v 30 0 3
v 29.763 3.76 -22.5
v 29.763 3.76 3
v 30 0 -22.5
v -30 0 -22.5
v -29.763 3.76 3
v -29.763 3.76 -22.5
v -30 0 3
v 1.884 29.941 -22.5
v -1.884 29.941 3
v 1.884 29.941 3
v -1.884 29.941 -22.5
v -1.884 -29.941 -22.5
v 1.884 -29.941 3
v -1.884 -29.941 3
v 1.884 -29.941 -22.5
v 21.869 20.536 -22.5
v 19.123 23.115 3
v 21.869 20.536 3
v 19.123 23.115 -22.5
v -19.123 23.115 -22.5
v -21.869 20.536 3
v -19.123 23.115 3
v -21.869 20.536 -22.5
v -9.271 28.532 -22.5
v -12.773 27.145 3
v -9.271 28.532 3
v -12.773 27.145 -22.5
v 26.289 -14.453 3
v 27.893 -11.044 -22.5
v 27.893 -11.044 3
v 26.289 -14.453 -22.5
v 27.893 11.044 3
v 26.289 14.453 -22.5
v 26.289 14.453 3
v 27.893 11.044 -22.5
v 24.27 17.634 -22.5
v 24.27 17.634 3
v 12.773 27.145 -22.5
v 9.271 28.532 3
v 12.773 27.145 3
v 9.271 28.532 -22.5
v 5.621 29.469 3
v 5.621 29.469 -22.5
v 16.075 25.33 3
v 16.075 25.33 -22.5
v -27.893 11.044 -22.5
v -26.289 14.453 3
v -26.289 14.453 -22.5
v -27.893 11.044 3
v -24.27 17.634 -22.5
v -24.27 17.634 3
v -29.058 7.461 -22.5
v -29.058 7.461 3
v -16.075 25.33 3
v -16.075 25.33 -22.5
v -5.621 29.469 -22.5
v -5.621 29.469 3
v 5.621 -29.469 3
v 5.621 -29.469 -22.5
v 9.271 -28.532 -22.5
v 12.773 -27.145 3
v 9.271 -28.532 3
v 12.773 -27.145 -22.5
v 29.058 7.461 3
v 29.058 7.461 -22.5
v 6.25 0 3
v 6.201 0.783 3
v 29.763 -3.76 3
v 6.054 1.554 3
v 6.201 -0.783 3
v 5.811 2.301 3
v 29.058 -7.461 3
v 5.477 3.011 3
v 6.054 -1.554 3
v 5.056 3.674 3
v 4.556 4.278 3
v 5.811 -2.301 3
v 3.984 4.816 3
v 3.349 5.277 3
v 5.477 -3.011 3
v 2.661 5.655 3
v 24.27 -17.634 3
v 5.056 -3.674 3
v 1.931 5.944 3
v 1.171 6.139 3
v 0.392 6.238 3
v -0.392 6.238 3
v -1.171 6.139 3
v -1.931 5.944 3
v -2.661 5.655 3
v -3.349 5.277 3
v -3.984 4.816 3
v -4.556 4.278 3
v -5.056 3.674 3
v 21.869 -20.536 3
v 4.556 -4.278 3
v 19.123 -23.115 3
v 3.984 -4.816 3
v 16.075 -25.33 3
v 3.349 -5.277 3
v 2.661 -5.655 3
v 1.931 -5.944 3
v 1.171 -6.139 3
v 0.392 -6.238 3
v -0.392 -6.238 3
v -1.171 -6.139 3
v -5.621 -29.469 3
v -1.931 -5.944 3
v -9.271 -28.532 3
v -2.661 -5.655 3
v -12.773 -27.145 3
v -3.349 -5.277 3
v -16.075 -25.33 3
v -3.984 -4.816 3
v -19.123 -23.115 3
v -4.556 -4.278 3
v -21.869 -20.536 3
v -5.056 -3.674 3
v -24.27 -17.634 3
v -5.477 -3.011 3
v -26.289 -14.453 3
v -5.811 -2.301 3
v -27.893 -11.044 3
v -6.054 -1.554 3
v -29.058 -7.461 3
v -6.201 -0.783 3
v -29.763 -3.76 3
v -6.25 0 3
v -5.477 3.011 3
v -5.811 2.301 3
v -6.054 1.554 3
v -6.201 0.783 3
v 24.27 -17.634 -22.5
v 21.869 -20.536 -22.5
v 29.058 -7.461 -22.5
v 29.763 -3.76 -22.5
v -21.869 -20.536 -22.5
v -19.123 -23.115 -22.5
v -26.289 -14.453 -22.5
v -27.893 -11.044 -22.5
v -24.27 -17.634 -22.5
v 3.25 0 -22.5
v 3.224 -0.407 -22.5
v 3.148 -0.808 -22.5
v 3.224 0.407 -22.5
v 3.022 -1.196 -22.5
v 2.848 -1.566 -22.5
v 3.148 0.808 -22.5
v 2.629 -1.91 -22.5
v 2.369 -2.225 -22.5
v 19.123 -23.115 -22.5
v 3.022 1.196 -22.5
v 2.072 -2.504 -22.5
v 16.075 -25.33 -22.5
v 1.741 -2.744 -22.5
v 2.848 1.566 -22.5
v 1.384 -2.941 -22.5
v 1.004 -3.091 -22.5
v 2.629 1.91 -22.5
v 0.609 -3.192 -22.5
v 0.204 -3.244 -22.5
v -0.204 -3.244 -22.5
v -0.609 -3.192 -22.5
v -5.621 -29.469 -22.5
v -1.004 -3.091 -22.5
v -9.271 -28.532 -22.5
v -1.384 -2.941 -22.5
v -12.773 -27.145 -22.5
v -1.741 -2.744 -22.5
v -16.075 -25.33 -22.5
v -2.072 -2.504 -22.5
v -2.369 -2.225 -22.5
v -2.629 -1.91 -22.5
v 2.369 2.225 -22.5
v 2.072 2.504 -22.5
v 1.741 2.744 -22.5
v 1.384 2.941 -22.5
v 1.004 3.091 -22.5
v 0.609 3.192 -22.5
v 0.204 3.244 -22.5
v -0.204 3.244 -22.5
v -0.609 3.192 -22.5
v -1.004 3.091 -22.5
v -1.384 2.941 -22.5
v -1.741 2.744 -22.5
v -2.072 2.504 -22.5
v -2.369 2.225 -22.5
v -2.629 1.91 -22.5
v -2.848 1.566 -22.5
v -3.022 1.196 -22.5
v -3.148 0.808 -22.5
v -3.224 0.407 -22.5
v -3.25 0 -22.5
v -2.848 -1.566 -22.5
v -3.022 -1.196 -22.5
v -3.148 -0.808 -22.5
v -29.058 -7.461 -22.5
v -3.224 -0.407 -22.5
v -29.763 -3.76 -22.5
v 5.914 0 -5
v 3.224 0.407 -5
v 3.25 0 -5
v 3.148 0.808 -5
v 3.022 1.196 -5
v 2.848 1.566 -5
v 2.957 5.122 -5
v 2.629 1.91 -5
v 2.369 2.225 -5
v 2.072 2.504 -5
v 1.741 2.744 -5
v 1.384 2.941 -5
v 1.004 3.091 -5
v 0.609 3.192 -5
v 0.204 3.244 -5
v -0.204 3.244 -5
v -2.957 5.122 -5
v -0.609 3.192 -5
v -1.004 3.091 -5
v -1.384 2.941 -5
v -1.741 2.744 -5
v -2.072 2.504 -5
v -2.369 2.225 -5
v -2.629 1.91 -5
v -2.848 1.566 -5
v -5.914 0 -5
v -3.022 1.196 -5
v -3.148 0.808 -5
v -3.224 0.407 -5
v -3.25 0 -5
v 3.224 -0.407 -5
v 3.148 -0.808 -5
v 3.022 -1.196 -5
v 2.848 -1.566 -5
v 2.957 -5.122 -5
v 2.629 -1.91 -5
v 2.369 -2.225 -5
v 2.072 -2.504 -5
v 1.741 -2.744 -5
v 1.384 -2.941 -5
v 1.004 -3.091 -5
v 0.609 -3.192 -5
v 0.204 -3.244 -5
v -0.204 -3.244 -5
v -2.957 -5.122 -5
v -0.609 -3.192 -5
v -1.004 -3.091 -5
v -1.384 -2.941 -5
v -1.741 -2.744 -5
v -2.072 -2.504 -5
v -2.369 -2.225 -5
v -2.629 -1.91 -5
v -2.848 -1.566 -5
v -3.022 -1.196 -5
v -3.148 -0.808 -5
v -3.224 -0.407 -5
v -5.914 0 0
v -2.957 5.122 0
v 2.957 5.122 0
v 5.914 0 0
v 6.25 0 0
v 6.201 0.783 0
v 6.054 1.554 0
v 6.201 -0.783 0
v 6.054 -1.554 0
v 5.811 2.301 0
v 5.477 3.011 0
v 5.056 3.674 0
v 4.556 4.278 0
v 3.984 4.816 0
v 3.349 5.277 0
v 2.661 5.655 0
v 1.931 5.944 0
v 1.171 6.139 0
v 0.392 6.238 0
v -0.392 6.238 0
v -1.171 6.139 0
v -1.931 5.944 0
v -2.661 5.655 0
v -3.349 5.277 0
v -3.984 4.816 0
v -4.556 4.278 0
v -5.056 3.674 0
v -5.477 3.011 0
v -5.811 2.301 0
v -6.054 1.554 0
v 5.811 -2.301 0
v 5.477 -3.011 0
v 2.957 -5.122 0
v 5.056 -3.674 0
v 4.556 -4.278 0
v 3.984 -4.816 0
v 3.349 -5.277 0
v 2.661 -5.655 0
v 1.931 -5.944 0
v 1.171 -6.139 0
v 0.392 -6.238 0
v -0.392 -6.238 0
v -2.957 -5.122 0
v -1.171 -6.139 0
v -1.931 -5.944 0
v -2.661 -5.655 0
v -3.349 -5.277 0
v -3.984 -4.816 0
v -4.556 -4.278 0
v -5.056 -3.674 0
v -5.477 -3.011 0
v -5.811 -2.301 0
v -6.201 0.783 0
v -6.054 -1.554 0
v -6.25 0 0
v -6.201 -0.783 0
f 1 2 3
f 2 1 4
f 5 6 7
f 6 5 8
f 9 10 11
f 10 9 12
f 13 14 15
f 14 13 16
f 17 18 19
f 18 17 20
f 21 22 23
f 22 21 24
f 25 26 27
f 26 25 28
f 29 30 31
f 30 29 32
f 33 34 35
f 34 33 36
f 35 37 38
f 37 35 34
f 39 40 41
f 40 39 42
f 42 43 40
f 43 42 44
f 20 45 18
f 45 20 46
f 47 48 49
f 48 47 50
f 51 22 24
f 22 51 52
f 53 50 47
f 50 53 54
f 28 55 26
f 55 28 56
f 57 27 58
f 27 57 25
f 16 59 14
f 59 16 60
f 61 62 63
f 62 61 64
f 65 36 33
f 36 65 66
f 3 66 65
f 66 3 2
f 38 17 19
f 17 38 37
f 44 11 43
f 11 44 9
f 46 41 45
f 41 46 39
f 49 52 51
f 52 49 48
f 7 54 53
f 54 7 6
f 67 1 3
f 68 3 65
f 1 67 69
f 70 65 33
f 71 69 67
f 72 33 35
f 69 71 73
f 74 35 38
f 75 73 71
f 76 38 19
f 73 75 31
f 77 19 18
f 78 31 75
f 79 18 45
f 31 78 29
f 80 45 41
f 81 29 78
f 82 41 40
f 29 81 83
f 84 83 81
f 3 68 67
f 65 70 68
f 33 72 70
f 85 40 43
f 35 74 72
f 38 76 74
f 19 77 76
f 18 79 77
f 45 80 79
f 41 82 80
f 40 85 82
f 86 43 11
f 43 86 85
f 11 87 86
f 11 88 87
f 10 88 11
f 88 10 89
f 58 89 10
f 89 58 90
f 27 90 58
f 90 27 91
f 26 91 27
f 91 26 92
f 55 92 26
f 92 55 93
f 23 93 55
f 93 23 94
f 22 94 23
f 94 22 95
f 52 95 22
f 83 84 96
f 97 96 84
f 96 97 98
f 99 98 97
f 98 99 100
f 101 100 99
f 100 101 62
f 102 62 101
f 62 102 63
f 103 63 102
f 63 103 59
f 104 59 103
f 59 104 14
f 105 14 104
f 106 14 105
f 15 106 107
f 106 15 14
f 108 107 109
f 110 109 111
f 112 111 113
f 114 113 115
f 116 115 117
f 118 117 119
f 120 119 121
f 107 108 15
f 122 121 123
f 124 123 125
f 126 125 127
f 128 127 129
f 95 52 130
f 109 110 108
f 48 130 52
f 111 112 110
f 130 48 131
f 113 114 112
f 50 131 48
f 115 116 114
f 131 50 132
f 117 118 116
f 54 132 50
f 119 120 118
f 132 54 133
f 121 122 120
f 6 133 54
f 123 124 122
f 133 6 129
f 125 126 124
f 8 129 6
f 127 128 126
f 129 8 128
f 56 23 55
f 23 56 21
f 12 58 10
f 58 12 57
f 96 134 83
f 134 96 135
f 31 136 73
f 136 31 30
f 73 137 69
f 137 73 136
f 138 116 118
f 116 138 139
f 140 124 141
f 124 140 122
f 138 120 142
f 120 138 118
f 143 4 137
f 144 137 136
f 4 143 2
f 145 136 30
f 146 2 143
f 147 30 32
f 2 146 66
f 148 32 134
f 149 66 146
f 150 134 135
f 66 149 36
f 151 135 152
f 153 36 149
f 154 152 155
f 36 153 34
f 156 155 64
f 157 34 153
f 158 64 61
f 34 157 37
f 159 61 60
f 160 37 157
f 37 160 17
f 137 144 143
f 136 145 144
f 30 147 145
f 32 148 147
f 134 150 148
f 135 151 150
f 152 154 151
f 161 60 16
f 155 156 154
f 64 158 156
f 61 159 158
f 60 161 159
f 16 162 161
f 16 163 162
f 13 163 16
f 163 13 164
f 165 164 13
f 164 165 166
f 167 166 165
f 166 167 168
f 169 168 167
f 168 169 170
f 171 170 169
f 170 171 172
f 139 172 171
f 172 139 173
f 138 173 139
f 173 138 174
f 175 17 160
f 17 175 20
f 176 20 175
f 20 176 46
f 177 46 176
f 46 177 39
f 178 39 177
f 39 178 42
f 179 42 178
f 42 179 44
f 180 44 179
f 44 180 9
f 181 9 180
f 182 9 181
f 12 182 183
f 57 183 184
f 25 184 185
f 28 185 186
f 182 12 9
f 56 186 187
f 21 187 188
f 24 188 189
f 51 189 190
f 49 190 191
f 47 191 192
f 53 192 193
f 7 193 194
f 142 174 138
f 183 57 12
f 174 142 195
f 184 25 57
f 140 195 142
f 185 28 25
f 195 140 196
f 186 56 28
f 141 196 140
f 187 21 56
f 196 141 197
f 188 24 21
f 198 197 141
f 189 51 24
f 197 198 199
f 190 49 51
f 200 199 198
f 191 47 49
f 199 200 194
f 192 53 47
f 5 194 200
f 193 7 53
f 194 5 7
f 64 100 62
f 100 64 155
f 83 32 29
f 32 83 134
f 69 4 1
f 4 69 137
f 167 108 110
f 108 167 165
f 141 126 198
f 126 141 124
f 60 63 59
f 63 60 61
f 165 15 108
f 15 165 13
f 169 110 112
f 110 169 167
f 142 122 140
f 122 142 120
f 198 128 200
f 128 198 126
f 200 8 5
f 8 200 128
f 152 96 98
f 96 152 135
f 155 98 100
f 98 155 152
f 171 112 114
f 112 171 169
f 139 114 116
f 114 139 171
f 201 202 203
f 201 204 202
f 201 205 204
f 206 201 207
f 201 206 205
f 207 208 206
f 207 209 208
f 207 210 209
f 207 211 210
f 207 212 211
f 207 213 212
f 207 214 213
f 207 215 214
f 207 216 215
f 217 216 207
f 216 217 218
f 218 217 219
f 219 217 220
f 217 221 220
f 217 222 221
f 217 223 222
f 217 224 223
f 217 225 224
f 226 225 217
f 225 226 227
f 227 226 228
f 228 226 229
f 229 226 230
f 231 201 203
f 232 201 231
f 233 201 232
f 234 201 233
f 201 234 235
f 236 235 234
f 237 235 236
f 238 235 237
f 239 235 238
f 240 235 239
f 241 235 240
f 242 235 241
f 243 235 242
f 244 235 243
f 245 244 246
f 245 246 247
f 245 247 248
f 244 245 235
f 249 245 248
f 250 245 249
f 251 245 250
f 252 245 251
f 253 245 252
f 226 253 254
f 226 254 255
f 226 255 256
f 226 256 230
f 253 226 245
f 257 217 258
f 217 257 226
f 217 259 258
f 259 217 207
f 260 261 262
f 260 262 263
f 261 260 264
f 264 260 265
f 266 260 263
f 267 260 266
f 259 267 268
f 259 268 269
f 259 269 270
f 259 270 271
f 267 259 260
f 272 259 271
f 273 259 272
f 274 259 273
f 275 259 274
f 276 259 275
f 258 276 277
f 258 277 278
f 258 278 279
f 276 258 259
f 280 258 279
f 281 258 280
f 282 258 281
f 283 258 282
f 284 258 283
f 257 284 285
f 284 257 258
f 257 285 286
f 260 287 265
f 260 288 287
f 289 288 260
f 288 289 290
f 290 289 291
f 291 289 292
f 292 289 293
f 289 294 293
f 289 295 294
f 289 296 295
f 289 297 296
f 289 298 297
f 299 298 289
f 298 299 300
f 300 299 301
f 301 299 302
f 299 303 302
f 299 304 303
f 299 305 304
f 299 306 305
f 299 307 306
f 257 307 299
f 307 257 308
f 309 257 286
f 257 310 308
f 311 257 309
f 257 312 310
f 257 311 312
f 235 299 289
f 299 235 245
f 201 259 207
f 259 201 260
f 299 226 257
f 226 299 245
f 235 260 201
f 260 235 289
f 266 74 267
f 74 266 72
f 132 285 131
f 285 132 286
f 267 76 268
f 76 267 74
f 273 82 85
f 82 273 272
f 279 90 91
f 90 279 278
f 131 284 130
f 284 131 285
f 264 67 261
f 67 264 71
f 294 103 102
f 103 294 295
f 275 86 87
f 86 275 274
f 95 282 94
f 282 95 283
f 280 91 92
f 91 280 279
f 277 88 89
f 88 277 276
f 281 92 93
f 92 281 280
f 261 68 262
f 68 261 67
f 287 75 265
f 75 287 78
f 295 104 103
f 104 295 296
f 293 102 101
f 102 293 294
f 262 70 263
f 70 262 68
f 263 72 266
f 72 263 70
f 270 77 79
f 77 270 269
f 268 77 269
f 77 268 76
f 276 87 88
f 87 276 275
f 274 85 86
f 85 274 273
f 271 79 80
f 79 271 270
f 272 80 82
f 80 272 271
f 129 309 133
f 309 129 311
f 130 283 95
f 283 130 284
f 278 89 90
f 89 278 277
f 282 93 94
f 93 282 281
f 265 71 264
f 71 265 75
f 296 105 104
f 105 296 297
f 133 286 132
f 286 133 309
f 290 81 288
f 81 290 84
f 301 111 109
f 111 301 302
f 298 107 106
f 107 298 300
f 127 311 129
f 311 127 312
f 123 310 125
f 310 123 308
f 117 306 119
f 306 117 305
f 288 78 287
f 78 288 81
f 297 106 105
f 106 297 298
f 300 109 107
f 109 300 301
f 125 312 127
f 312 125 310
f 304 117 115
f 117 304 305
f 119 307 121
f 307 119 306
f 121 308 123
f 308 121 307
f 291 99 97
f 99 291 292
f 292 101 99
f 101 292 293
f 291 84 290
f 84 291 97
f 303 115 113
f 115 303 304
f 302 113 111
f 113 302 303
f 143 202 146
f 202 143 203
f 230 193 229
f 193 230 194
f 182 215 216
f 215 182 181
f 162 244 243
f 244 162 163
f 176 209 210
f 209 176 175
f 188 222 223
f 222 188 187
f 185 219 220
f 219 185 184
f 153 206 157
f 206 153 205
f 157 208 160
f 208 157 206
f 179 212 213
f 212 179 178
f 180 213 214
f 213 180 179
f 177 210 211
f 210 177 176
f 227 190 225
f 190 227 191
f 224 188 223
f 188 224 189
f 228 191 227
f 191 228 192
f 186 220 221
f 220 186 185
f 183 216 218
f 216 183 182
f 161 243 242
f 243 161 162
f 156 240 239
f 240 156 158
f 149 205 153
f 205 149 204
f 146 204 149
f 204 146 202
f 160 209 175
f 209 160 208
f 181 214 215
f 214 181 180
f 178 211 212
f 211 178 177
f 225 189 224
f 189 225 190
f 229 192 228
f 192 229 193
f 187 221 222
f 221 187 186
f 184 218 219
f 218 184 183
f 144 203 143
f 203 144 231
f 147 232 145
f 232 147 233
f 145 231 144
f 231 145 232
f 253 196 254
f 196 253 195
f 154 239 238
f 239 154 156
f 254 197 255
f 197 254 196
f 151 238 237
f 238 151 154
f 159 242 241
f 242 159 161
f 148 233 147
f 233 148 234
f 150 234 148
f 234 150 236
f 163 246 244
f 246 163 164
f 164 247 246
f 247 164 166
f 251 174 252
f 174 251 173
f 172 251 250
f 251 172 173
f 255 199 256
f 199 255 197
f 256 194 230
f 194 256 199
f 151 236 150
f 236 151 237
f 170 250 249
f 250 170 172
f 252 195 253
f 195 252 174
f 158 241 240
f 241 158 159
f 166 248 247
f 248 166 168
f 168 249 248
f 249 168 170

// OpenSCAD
$fn = 50;

difference() {
	union() {
		translate(v = [0, 0, -22.5]) {
			cylinder(h = 25.5, r = 30.0);
		}
		#translate(v = [0, 0, -24.0]) {
			cylinder(h = 24, r = 2.875);
		}
	}
	union() {
		translate(v = [0, 0, 0]) {
			rotate(a = [0, 0, 0]) {
				difference() {
					union() {
						translate(v = [0, 0, -5]) {
							linear_extrude(height = 5) {
								polygon(points = [[5.914249999999999, 0.0], [2.957125, 5.1218907443321156], [-2.9571249999999982, 5.1218907443321156], [-5.914249999999999, 7.242867331857232e-16], [-2.9571250000000022, -5.121890744332115], [2.9571249999999956, -5.121890744332118]]);
							}
						}
					}
					union();
				}
			}
		}
		#cylinder(h = 3, r = 6.25);
		#translate(v = [0, 0, -100.0]) {
			cylinder(h = 200, r = 3.25);
		}
	}
}
